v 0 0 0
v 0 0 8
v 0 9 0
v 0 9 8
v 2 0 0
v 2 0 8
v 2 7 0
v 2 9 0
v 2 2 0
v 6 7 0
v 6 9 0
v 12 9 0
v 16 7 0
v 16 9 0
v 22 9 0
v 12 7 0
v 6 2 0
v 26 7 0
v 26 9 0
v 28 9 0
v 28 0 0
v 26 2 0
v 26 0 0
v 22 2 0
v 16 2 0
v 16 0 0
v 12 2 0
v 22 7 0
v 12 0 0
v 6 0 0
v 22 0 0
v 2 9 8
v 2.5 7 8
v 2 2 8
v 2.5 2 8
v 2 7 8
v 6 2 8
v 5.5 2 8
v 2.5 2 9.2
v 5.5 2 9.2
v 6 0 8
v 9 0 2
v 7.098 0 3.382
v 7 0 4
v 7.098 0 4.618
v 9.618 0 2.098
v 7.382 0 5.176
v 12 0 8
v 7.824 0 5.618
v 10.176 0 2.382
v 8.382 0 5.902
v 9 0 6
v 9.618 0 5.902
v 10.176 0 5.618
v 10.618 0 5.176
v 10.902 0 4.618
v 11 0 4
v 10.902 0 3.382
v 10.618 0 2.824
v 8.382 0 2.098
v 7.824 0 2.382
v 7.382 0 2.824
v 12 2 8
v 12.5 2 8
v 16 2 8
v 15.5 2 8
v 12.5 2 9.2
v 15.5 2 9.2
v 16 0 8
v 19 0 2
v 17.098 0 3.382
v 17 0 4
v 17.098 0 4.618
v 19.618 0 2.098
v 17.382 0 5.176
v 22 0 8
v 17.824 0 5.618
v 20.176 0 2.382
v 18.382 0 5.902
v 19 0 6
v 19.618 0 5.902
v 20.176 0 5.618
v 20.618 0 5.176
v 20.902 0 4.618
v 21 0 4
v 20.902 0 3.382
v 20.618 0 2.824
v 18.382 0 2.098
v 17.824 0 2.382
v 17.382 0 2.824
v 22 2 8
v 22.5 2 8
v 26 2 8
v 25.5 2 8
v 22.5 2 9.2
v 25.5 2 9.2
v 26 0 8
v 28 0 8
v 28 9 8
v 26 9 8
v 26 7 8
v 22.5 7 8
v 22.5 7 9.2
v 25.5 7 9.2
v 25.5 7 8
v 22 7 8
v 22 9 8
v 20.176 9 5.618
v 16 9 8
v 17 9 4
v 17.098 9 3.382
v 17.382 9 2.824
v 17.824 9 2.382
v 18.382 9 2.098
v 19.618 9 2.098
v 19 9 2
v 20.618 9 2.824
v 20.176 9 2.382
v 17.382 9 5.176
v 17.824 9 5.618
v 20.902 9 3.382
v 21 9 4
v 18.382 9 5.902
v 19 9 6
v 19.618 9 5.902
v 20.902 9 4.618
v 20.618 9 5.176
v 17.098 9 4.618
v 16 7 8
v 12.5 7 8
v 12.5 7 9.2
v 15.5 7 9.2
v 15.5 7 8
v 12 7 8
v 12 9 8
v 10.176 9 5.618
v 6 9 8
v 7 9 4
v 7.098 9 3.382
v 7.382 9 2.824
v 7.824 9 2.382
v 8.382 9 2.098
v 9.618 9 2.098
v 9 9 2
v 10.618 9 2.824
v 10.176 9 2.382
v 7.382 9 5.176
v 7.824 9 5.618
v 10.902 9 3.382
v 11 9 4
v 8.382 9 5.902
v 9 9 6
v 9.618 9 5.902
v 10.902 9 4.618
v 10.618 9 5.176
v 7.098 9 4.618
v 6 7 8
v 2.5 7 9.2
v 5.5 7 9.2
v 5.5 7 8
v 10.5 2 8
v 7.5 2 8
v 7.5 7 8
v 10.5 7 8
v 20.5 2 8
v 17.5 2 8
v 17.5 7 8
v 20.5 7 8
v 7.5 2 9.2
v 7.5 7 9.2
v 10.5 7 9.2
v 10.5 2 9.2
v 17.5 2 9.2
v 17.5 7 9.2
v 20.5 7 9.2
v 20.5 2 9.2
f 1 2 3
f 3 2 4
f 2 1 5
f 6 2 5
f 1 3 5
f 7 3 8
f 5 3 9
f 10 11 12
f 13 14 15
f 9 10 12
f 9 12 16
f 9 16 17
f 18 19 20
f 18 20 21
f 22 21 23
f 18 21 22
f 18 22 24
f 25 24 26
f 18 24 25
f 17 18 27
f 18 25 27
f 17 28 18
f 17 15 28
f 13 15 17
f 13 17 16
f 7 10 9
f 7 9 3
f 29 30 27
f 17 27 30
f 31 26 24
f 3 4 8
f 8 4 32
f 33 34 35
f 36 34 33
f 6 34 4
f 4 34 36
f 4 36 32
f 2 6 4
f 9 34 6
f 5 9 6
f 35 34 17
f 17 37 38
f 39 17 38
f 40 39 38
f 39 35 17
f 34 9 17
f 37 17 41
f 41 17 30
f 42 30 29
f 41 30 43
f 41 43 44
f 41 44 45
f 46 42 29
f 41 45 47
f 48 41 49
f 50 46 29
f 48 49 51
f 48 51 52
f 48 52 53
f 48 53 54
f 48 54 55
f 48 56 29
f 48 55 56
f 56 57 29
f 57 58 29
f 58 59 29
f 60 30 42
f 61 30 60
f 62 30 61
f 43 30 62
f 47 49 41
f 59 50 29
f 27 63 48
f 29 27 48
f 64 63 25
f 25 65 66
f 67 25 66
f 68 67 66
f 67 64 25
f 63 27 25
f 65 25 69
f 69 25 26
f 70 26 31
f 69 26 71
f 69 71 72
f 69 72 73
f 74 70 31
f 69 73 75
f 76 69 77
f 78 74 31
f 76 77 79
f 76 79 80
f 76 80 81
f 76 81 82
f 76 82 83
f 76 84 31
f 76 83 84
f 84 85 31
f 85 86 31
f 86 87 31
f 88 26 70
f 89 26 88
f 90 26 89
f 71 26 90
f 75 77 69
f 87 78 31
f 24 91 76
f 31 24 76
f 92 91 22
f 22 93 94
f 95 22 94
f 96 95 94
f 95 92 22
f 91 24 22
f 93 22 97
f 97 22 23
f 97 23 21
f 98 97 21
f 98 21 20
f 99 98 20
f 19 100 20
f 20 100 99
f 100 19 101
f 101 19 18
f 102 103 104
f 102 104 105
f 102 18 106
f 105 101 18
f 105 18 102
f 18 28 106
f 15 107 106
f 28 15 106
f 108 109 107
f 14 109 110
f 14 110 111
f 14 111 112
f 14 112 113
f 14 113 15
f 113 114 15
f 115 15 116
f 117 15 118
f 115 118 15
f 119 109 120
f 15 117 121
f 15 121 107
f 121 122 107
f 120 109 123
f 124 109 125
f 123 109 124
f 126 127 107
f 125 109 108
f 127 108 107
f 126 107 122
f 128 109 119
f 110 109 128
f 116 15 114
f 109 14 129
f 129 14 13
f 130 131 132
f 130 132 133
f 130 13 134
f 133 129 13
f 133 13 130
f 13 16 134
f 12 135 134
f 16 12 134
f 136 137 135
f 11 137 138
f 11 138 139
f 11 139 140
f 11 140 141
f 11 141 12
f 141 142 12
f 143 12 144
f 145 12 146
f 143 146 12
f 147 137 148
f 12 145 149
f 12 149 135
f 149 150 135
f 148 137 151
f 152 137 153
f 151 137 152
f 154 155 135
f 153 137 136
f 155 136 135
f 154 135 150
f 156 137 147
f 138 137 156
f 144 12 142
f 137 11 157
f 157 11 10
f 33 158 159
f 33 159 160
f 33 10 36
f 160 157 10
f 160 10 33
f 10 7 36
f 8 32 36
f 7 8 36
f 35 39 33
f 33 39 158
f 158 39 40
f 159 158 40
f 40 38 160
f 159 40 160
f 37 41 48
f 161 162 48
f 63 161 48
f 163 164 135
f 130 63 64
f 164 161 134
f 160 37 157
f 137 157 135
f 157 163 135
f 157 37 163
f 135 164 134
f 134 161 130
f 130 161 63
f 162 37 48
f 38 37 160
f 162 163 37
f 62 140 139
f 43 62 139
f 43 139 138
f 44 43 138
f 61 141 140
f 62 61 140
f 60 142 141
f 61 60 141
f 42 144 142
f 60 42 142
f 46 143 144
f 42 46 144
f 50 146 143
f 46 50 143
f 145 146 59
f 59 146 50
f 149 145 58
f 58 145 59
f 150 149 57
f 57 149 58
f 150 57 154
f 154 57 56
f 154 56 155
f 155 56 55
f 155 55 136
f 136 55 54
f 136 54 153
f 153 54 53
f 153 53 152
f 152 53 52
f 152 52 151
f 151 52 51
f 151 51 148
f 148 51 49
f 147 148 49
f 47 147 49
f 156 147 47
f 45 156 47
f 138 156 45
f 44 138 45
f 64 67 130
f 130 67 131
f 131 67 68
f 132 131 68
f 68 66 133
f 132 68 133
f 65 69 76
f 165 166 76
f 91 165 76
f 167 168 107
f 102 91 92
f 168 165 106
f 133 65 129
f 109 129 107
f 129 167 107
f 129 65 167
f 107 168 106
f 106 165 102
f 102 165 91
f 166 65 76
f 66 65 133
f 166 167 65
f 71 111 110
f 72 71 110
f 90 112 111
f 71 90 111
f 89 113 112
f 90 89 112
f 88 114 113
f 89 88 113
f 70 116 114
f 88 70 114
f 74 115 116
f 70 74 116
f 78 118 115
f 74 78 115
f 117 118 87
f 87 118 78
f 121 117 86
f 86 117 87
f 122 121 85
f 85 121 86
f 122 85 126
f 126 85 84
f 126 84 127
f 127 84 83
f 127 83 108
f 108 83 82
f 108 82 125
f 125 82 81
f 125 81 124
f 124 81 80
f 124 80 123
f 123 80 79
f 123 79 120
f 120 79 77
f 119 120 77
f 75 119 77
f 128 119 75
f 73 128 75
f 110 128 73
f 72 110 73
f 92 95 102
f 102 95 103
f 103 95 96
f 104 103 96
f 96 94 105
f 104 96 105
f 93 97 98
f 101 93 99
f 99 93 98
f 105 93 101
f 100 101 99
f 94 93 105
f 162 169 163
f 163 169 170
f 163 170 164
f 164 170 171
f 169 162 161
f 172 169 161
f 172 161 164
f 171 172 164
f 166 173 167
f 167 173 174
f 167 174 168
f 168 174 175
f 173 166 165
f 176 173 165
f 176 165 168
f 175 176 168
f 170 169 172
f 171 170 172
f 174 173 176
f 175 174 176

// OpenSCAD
difference(){
	union(){
		beltclamp(8);
		translate([2.5+5*0,2,8])cube([3,5,1.2]);
		translate([2.5+5*1,2,8])cube([3,5,1.2]);
		translate([2.5+5*2,2,8])cube([3,5,1.2]);
		translate([2.5+5*3,2,8])cube([3,5,1.2]);
		translate([2.5+5*4,2,8])cube([3,5,1.2]);
	}
	beltclamp_neg(8);

	// screw holes block
	translate([6+3,10,8/2]) 
	rotate([90,0,0]) #cylinder(r=4/2,h=11,$fn=20);
	translate([6+3+10,10,8/2]) 
	rotate([90,0,0]) #cylinder(r=4/2,h=11,$fn=20);

}

module beltclamp(h){
		cube([28,9,h],center=false);
}

module beltclamp_neg(h){
		translate([2,0,-1]) #cube([4,2,h+3],center=false);	
		translate([2+5*2,0,-1]) #cube([4,2,h+3],center=false);		
		translate([2+5*4,0,-1]) #cube([4,2,h+3],center=false);		

		translate([2,7,-1]) #cube([4,2,h+3],center=false);	translate([2+5*2,7,-1]) #cube([4,2,h+3],center=false);		
		translate([2+5*4,7,-1]) #cube([4,2,h+3],center=false);		

}
